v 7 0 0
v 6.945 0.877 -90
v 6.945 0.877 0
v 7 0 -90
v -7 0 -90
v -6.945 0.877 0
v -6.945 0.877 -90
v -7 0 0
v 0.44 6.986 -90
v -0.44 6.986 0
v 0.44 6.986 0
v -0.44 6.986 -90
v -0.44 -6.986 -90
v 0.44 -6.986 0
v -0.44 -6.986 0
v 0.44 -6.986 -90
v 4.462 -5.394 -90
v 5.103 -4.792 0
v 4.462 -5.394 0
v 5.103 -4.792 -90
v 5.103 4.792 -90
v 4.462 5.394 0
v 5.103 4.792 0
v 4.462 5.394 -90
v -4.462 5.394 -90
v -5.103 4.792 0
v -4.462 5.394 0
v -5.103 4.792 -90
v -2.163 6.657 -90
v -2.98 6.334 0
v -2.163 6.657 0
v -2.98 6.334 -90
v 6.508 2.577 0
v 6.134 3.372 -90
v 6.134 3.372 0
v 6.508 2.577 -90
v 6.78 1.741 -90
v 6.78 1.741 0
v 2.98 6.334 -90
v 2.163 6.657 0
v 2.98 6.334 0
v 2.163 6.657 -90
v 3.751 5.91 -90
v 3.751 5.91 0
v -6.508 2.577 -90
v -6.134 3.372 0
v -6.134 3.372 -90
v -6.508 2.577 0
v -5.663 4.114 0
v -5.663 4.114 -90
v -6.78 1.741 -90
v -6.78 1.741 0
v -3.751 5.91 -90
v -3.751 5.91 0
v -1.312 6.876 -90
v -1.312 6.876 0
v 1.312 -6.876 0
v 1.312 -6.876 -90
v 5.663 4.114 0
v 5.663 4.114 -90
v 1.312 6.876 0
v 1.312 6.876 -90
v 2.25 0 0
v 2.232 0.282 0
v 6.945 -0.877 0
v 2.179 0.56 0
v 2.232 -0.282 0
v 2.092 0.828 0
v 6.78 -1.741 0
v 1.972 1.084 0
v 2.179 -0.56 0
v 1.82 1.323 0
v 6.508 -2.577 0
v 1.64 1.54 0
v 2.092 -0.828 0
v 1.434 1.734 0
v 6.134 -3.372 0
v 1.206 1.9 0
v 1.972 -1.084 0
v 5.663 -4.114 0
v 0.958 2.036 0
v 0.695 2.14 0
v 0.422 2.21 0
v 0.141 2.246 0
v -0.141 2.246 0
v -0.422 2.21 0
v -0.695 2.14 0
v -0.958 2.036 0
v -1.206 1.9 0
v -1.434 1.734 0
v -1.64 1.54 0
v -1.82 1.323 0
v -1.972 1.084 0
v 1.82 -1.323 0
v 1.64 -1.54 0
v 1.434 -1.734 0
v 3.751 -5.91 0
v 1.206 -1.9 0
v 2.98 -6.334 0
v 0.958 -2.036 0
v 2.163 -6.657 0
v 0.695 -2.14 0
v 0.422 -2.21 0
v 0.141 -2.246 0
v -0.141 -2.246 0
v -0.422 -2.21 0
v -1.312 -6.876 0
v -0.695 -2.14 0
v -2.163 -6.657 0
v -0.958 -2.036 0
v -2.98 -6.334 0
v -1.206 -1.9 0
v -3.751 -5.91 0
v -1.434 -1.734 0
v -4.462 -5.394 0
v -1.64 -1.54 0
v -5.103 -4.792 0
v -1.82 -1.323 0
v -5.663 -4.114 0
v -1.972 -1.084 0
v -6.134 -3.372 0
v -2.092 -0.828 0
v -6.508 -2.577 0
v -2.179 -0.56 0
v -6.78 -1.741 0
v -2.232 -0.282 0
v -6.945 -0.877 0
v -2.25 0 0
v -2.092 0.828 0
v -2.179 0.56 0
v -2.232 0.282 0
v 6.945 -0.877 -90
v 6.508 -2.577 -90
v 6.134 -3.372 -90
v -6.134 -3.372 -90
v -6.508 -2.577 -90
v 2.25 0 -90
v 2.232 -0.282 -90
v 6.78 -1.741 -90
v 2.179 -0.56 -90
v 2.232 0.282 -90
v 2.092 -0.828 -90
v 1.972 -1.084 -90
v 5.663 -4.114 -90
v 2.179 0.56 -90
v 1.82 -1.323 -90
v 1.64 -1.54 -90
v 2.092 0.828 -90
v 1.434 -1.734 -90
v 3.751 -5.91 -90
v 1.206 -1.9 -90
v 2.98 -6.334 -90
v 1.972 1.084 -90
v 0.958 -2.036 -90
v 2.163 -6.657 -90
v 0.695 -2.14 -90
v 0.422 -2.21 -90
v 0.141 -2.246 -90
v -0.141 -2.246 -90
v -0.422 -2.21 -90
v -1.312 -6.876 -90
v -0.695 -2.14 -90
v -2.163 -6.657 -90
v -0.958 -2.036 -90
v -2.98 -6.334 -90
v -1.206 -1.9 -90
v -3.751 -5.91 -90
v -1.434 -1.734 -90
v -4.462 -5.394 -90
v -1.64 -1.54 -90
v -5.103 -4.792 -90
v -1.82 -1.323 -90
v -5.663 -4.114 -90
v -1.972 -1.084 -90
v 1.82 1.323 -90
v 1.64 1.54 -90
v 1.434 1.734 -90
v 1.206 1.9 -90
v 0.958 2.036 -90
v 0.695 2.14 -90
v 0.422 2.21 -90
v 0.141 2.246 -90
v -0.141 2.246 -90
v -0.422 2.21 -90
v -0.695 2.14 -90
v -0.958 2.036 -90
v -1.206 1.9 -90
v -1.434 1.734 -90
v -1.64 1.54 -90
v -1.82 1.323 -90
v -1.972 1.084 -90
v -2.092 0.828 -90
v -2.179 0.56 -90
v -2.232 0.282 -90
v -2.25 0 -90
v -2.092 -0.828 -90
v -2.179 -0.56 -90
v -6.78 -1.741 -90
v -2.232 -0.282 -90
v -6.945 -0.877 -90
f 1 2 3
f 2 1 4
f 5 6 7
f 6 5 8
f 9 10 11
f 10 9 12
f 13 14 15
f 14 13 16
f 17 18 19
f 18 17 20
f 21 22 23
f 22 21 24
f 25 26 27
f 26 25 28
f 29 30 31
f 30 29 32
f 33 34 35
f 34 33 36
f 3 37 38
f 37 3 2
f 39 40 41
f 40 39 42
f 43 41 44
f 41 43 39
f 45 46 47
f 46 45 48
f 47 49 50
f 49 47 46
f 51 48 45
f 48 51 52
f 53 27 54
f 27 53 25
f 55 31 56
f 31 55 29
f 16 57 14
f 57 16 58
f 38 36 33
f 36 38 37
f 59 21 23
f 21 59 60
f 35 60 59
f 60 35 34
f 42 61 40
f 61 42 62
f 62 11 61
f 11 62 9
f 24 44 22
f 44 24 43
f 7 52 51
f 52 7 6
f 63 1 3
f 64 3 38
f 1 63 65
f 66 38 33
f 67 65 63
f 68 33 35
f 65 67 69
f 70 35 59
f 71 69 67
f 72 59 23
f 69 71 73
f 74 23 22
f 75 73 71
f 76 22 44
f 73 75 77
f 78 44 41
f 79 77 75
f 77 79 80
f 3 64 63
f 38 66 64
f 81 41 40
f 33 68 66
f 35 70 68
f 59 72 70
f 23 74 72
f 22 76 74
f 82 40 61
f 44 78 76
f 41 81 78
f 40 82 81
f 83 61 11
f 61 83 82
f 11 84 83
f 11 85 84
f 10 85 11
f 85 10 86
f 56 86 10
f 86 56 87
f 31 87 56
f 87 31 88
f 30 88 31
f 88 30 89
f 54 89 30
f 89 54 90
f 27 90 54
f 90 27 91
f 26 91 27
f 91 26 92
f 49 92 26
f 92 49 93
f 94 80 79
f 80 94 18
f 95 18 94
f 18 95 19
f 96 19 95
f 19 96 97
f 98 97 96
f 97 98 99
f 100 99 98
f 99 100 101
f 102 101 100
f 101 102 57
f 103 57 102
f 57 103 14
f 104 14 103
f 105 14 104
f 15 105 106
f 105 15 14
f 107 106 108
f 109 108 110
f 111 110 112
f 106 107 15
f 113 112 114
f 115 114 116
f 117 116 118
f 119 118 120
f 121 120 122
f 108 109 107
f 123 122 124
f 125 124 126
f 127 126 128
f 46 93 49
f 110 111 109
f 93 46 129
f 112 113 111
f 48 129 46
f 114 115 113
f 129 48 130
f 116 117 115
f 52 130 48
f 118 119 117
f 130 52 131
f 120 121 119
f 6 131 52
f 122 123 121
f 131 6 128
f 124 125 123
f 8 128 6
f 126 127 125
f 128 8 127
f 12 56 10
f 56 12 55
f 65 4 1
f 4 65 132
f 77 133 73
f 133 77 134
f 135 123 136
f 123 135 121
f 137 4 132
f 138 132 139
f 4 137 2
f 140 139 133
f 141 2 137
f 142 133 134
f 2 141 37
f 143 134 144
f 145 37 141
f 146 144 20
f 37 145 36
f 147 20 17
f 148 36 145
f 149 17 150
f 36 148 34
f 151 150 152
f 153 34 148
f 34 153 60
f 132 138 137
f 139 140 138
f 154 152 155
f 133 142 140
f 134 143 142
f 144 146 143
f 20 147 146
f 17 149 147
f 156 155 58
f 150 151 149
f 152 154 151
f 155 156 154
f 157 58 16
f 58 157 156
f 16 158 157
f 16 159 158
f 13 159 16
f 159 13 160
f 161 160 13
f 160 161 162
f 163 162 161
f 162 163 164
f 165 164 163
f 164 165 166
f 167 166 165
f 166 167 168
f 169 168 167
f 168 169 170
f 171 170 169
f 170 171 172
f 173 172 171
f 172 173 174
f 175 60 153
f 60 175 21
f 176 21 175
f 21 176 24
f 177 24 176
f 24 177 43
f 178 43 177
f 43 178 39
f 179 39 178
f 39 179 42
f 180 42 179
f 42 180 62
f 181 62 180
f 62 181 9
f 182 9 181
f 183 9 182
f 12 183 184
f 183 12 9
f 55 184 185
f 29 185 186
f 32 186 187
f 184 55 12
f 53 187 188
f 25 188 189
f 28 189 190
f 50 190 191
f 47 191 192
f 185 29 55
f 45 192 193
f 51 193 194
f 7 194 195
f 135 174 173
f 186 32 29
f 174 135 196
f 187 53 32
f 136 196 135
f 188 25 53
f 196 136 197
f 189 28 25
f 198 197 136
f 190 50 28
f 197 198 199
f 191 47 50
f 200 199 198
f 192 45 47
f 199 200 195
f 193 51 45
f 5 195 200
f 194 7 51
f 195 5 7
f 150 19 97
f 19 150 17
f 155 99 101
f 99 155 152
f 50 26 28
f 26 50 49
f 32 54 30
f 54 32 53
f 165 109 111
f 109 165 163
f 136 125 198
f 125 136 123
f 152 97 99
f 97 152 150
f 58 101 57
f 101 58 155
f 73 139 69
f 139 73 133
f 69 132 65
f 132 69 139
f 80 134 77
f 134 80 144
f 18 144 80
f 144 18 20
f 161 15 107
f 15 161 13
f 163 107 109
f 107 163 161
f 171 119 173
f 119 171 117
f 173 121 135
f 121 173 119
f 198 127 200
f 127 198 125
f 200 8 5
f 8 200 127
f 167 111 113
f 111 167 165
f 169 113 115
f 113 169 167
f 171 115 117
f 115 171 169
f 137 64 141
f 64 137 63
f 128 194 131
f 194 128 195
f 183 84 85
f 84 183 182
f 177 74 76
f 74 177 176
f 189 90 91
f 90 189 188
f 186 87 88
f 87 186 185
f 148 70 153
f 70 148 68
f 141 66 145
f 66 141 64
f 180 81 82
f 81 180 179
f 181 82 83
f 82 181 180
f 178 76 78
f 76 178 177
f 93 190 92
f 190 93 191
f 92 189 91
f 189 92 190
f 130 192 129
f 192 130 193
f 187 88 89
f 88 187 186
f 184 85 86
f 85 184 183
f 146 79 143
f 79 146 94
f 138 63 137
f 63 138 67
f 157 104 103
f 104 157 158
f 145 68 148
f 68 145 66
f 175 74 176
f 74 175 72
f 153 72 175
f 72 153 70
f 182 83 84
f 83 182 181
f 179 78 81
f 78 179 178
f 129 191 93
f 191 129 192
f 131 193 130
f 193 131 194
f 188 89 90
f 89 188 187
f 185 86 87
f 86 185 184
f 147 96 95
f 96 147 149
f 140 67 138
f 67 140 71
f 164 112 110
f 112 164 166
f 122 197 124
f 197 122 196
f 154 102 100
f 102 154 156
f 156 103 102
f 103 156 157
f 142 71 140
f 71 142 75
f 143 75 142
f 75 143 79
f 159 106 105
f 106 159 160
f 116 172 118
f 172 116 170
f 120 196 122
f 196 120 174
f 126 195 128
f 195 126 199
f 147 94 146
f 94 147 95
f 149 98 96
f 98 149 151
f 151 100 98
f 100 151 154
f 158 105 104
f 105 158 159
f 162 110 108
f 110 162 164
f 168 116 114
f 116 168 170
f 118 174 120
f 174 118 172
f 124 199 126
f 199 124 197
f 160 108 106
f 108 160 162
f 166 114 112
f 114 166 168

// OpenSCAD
$fn = 50;


difference() {
	union() {
		translate(v = [0, 0, -90.0000000000]) {
			cylinder(h = 90, r = 7.0000000000);
		}
	}
	union() {
		#translate(v = [0, 0, -90]) {
			cylinder(h = 90, r = 2.2500000000);
		}
	}
}
